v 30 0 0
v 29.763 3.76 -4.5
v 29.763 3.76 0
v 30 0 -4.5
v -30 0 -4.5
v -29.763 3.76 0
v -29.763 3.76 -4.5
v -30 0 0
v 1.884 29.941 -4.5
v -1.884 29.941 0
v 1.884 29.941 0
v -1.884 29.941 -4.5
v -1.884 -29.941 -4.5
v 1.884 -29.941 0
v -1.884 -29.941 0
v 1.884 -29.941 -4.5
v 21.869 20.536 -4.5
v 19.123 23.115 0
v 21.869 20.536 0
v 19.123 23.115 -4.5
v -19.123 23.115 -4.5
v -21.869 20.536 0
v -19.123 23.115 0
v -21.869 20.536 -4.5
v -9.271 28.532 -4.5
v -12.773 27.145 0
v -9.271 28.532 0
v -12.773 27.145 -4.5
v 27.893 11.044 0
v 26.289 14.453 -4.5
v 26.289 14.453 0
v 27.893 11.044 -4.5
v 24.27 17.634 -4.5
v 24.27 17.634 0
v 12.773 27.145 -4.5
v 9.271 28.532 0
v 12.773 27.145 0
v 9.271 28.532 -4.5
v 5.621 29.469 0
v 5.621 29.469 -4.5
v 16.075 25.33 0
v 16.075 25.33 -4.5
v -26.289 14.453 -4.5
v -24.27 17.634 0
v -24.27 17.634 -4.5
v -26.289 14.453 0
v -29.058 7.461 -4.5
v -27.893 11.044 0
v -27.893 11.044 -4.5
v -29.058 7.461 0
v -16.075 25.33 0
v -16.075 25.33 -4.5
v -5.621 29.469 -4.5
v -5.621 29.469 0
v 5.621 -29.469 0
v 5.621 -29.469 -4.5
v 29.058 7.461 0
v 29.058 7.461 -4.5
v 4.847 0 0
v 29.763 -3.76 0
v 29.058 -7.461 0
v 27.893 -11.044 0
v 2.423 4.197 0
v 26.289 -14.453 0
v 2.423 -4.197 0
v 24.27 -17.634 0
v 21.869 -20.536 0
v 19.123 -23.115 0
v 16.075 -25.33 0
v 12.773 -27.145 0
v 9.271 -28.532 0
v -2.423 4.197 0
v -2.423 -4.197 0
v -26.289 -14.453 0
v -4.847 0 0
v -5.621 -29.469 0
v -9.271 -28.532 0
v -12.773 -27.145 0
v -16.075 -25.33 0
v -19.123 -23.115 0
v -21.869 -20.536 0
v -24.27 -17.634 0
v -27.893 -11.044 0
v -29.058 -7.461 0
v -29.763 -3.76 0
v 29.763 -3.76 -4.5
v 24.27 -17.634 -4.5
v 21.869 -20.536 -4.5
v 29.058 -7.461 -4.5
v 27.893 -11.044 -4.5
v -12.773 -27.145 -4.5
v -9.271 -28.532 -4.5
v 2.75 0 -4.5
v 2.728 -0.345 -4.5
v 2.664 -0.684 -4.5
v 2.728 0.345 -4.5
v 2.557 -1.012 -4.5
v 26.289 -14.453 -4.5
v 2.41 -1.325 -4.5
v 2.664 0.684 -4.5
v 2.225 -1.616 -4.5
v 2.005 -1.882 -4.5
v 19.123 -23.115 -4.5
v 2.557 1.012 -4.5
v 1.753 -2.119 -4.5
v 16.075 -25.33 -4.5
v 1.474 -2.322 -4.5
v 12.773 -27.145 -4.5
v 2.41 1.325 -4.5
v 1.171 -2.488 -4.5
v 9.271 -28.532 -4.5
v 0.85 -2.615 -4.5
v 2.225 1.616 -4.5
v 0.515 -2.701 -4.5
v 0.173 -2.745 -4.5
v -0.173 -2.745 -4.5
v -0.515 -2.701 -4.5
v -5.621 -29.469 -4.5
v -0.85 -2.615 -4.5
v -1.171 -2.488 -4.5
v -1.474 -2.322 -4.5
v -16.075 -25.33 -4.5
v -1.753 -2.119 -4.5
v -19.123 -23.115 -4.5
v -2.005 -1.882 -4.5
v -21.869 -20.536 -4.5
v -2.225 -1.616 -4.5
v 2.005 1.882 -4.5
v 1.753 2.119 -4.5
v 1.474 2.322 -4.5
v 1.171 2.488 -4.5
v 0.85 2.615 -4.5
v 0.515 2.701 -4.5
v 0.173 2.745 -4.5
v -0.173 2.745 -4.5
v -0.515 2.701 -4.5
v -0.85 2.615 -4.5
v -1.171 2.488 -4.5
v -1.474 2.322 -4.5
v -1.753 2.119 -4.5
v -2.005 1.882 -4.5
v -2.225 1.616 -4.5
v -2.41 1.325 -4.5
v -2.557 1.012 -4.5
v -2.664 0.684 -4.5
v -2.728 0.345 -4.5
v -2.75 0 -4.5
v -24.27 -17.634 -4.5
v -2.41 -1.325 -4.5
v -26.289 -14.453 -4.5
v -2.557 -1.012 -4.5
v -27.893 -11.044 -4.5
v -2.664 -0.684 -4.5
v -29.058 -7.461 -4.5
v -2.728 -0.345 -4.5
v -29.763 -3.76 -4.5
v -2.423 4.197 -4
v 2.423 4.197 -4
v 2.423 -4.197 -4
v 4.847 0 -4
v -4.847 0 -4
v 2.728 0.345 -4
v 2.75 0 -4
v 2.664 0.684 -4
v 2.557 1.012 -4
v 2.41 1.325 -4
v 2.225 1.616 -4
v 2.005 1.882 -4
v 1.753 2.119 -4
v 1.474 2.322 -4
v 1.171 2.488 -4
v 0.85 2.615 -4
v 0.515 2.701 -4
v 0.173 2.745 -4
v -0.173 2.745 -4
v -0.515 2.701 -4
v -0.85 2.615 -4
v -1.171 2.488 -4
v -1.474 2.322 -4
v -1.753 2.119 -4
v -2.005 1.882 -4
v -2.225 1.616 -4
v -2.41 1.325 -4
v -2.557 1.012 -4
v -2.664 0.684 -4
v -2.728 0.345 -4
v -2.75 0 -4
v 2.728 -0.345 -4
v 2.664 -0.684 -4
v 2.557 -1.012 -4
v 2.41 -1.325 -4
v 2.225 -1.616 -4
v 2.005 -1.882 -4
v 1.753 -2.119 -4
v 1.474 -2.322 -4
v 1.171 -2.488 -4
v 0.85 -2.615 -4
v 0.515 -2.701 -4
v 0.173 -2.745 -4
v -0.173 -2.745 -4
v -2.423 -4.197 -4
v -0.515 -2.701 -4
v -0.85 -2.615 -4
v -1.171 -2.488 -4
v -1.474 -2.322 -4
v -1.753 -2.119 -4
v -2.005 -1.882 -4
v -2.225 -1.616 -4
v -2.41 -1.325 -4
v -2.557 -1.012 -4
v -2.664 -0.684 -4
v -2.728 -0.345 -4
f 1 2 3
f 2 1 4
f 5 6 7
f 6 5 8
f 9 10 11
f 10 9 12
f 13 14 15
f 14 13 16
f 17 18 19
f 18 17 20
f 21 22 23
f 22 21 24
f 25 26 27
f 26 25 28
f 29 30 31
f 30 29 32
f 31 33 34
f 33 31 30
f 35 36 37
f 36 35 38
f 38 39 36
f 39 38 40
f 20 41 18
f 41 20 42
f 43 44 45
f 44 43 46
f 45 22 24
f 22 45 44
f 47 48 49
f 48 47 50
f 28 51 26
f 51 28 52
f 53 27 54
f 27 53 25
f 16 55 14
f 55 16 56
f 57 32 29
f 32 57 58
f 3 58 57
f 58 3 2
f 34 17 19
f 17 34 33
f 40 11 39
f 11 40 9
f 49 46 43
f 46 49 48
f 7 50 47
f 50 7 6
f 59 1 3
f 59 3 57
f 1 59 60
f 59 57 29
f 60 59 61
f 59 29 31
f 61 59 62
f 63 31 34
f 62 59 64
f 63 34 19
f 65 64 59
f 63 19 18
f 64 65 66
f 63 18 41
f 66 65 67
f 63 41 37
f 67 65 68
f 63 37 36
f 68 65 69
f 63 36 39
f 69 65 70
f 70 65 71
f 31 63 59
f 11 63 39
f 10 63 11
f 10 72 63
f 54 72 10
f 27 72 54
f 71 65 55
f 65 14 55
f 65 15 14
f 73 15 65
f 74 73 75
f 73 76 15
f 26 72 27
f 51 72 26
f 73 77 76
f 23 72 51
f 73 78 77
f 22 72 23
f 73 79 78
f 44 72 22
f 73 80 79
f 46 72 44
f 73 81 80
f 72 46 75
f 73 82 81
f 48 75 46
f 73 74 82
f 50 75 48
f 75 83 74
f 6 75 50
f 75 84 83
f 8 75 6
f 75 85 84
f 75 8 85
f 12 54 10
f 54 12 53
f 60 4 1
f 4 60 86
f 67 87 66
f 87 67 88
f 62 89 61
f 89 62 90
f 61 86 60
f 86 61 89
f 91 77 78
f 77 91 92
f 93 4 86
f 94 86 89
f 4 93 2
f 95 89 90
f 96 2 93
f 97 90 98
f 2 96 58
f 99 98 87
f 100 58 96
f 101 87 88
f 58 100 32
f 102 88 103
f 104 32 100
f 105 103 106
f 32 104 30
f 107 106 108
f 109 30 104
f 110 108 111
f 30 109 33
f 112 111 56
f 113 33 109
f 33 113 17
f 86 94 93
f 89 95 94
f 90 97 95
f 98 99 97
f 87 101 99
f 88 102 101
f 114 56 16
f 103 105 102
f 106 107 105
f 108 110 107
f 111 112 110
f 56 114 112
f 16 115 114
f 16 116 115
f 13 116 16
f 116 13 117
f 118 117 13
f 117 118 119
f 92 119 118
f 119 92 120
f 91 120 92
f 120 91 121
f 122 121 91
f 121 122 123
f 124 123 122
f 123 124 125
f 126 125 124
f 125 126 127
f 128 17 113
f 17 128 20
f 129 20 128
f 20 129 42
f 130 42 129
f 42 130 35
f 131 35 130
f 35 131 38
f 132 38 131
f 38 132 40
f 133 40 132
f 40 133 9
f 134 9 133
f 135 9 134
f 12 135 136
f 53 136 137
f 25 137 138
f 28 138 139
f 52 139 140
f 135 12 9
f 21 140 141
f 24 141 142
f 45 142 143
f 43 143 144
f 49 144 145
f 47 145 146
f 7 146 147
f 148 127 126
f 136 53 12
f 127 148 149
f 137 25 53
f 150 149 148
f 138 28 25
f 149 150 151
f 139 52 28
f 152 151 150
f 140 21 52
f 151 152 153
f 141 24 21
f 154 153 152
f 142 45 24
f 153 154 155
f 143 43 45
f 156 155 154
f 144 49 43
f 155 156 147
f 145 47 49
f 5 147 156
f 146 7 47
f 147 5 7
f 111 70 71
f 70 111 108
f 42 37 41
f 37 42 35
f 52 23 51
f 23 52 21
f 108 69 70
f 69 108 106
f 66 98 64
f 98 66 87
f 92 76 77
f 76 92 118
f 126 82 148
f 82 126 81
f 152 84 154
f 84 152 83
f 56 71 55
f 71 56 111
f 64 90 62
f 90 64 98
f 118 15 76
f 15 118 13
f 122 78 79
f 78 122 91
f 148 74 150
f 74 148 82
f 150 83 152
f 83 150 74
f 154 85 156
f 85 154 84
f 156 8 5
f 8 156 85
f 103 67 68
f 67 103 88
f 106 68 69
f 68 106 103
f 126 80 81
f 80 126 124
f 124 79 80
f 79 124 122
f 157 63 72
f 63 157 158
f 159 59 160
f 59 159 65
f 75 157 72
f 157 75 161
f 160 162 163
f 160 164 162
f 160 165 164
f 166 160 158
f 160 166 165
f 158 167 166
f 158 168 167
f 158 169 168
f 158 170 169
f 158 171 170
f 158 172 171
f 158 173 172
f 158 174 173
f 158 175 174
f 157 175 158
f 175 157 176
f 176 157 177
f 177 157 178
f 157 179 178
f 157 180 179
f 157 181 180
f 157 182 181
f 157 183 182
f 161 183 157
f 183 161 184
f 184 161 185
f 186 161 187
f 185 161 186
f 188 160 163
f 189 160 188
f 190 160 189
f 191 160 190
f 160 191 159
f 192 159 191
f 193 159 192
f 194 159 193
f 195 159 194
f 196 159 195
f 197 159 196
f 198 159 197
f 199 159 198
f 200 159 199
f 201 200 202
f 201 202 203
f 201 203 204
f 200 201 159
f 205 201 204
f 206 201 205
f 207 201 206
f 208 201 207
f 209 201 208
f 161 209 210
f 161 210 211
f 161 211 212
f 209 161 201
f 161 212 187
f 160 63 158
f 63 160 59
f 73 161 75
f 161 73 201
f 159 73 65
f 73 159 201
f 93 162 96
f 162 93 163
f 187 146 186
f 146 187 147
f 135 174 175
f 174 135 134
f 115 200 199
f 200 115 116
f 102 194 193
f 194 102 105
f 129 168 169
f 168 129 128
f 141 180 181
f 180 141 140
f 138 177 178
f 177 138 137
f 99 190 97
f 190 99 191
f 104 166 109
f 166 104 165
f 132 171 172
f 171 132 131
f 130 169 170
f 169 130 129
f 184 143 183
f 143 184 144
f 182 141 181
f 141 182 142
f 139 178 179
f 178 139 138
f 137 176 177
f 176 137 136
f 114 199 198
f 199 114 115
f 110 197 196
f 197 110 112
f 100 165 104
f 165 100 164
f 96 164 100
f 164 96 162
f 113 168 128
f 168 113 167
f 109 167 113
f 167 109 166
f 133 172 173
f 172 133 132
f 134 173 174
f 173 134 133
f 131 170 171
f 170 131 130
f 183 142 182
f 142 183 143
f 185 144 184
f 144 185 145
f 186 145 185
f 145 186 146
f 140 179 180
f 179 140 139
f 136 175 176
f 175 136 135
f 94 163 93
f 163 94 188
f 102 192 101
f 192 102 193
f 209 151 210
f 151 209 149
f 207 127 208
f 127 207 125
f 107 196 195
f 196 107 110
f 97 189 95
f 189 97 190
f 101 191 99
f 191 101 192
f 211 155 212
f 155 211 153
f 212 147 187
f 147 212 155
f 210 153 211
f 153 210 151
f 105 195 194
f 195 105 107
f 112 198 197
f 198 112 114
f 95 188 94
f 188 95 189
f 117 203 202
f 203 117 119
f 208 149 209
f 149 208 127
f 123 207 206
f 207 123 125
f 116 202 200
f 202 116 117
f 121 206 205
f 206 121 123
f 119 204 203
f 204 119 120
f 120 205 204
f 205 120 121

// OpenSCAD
$fn = 50;


difference() {
	union() {
		translate(v = [0, 0, -4.5000000000]) {
			cylinder(h = 4.5000000000, r = 30.0000000000);
		}
		translate(v = [0, 0, -3.0000000000]) {
			cylinder(h = 3, r = 2.8750000000);
		}
	}
	union() {
		translate(v = [0, 0, 0]) {
			rotate(a = [0, 0, 0]) {
				difference() {
					union() {
						translate(v = [0, 0, -4]) {
							linear_extrude(height = 4) {
								polygon(points = [[4.8468000000, 0.0000000000], [2.4234000000, 4.1974519271], [-2.4234000000, 4.1974519271], [-4.8468000000, 0.0000000000], [-2.4234000000, -4.1974519271], [2.4234000000, -4.1974519271]]);
							}
						}
					}
					union();
				}
			}
		}
		#translate(v = [0, 0, -100.0000000000]) {
			cylinder(h = 200, r = 2.7500000000);
		}
	}
}
